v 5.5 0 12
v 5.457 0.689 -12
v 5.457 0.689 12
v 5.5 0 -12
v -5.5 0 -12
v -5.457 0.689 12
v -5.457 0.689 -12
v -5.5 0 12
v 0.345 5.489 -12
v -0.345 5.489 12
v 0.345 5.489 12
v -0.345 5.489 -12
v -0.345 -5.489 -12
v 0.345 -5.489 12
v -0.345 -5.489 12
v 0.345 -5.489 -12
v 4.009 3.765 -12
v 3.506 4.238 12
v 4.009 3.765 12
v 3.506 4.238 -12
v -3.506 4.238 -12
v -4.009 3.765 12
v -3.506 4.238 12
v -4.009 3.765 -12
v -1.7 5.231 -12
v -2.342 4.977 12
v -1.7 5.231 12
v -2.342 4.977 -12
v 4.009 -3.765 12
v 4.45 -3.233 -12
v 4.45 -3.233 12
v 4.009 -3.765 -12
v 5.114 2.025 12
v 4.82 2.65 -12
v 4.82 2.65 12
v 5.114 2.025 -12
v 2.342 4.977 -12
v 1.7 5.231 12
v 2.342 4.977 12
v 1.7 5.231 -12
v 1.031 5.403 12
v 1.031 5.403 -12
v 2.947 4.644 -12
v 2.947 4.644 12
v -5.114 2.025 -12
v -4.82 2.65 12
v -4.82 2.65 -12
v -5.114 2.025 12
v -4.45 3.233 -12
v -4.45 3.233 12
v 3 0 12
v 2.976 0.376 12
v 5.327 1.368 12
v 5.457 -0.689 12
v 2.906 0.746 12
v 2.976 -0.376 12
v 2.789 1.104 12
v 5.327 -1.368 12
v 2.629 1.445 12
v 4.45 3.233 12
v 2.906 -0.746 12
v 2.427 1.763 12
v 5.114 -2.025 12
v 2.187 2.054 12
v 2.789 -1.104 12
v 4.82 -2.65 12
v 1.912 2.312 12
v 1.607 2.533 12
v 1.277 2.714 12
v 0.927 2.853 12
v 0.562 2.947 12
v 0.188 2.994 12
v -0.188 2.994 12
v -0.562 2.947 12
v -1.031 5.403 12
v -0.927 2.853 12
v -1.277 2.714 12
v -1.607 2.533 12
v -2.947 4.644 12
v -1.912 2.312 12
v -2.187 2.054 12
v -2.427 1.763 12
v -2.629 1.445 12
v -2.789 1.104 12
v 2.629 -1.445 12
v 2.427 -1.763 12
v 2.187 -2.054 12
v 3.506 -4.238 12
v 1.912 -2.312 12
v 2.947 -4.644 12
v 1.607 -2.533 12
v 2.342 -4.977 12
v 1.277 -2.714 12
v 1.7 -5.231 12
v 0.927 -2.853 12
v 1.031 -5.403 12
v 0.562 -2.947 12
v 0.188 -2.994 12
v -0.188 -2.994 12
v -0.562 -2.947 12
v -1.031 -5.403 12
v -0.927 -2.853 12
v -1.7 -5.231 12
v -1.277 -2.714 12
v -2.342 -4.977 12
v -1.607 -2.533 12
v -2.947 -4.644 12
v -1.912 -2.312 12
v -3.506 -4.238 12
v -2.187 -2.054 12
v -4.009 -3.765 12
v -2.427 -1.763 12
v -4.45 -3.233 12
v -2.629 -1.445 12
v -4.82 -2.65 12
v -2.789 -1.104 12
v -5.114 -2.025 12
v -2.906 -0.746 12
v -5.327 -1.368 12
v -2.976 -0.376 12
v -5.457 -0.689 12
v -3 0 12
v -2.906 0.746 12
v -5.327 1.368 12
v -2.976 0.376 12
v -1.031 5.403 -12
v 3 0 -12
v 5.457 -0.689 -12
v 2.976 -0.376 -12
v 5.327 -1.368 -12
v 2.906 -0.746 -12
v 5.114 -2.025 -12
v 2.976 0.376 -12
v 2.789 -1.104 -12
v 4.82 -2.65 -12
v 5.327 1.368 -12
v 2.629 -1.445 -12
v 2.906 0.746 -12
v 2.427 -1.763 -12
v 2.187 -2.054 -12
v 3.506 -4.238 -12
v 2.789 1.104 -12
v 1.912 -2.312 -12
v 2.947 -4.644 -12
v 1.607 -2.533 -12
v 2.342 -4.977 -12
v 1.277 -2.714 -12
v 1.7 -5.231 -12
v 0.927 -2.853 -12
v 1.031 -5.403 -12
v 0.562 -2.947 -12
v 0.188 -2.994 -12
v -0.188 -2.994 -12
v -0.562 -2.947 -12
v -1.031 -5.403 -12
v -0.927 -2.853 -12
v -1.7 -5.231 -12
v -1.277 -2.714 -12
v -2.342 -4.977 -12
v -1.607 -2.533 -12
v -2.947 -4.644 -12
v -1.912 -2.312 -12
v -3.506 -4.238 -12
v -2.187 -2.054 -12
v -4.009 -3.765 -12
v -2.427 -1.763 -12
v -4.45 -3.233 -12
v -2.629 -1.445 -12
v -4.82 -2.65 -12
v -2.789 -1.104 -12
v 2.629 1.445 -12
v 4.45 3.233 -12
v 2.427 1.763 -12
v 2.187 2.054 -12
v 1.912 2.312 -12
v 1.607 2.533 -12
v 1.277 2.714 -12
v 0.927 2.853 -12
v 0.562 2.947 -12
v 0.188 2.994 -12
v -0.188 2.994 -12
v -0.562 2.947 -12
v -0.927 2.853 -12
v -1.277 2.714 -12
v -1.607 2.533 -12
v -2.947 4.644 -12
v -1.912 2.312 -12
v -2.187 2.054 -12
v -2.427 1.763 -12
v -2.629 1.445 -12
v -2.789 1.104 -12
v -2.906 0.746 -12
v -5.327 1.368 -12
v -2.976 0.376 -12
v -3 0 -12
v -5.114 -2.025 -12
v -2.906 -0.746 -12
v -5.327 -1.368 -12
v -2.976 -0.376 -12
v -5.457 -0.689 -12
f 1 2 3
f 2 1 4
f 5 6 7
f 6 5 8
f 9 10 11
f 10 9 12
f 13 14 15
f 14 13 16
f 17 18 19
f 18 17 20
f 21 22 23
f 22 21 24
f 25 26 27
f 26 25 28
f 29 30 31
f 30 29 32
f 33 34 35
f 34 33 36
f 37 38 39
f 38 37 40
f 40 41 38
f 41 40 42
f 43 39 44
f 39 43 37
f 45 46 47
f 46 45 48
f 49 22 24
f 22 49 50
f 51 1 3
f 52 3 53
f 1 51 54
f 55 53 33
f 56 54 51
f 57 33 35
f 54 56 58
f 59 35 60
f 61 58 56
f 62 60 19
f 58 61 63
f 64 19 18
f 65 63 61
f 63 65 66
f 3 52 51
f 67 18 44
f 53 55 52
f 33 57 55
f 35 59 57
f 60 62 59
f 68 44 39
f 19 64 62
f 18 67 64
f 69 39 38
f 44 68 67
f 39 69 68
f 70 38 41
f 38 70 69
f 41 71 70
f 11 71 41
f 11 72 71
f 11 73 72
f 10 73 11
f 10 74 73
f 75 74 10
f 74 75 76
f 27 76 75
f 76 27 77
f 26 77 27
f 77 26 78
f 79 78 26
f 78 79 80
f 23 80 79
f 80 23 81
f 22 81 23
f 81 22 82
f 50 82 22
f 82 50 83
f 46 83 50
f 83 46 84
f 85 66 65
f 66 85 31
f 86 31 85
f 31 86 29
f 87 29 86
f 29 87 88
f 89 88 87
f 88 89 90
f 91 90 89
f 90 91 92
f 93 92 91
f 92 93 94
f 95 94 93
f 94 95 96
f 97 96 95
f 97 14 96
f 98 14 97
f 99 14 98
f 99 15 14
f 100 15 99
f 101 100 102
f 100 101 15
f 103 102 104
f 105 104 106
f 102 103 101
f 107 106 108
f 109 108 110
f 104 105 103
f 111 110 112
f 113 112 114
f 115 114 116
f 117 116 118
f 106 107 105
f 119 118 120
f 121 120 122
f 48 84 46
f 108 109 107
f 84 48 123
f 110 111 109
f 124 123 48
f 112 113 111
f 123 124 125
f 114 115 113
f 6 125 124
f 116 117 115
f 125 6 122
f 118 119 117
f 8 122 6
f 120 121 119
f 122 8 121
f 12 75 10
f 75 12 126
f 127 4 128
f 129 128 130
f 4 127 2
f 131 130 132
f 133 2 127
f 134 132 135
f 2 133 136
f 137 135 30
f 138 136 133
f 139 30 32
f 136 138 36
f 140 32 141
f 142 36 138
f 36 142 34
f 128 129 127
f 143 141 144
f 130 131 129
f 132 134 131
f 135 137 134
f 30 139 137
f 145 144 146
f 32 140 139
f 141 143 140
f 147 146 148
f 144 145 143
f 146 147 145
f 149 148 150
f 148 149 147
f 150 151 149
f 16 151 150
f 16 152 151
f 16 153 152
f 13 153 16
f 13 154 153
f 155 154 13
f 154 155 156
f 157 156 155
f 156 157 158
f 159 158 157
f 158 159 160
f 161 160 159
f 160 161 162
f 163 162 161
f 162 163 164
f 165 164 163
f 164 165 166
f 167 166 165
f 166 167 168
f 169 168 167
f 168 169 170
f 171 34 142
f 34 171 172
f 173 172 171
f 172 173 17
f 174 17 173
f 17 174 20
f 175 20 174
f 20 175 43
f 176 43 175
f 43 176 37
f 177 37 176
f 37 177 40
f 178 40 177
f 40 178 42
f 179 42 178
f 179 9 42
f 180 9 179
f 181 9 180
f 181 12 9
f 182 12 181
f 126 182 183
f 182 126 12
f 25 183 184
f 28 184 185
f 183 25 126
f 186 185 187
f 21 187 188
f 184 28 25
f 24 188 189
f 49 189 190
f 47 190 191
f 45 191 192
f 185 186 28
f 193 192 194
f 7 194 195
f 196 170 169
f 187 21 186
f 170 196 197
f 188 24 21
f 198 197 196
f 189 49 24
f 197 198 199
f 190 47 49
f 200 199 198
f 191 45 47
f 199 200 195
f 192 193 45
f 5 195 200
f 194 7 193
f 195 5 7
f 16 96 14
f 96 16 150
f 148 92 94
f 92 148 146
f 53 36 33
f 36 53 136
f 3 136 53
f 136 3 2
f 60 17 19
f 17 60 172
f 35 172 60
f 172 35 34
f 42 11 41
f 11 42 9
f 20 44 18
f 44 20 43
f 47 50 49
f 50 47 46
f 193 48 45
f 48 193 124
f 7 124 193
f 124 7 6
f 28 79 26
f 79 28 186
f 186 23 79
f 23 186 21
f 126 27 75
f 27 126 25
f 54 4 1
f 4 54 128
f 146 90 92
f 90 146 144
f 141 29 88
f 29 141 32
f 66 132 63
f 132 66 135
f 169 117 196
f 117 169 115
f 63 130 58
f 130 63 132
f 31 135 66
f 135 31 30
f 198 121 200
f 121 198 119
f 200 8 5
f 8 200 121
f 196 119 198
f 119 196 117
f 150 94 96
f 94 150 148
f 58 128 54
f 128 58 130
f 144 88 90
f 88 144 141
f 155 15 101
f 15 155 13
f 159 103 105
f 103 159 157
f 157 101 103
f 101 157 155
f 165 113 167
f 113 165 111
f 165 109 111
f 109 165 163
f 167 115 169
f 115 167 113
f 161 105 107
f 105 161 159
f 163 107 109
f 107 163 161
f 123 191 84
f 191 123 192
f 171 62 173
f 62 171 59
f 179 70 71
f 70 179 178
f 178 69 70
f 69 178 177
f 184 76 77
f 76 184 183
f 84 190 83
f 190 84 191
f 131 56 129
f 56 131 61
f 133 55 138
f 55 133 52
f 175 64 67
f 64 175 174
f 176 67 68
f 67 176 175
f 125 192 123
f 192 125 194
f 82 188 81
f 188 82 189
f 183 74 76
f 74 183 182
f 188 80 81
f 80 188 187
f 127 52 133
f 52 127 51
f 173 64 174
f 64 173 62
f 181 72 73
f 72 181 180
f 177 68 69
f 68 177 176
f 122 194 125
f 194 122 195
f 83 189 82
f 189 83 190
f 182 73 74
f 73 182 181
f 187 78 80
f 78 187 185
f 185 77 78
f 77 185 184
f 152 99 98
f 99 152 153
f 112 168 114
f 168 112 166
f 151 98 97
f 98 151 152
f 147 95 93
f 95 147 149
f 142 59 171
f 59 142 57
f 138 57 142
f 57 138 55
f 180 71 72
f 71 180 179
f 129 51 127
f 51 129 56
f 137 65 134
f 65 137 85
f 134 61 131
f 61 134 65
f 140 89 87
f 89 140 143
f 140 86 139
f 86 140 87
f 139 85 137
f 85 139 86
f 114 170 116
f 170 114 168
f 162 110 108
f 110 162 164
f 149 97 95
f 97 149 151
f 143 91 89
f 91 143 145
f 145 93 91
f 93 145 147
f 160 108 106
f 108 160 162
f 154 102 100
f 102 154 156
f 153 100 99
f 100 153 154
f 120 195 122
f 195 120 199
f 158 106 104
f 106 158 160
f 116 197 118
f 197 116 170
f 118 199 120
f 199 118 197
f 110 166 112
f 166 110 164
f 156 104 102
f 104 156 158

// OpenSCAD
$fn = 50;


difference() {
	union() {
		translate(v = [0, 0, -12.0000000000]) {
			cylinder(h = 24, r = 5.5000000000);
		}
	}
	union() {
		translate(v = [0, 0, -100.0000000000]) {
			cylinder(h = 200, r = 3.0000000000);
		}
	}
}
